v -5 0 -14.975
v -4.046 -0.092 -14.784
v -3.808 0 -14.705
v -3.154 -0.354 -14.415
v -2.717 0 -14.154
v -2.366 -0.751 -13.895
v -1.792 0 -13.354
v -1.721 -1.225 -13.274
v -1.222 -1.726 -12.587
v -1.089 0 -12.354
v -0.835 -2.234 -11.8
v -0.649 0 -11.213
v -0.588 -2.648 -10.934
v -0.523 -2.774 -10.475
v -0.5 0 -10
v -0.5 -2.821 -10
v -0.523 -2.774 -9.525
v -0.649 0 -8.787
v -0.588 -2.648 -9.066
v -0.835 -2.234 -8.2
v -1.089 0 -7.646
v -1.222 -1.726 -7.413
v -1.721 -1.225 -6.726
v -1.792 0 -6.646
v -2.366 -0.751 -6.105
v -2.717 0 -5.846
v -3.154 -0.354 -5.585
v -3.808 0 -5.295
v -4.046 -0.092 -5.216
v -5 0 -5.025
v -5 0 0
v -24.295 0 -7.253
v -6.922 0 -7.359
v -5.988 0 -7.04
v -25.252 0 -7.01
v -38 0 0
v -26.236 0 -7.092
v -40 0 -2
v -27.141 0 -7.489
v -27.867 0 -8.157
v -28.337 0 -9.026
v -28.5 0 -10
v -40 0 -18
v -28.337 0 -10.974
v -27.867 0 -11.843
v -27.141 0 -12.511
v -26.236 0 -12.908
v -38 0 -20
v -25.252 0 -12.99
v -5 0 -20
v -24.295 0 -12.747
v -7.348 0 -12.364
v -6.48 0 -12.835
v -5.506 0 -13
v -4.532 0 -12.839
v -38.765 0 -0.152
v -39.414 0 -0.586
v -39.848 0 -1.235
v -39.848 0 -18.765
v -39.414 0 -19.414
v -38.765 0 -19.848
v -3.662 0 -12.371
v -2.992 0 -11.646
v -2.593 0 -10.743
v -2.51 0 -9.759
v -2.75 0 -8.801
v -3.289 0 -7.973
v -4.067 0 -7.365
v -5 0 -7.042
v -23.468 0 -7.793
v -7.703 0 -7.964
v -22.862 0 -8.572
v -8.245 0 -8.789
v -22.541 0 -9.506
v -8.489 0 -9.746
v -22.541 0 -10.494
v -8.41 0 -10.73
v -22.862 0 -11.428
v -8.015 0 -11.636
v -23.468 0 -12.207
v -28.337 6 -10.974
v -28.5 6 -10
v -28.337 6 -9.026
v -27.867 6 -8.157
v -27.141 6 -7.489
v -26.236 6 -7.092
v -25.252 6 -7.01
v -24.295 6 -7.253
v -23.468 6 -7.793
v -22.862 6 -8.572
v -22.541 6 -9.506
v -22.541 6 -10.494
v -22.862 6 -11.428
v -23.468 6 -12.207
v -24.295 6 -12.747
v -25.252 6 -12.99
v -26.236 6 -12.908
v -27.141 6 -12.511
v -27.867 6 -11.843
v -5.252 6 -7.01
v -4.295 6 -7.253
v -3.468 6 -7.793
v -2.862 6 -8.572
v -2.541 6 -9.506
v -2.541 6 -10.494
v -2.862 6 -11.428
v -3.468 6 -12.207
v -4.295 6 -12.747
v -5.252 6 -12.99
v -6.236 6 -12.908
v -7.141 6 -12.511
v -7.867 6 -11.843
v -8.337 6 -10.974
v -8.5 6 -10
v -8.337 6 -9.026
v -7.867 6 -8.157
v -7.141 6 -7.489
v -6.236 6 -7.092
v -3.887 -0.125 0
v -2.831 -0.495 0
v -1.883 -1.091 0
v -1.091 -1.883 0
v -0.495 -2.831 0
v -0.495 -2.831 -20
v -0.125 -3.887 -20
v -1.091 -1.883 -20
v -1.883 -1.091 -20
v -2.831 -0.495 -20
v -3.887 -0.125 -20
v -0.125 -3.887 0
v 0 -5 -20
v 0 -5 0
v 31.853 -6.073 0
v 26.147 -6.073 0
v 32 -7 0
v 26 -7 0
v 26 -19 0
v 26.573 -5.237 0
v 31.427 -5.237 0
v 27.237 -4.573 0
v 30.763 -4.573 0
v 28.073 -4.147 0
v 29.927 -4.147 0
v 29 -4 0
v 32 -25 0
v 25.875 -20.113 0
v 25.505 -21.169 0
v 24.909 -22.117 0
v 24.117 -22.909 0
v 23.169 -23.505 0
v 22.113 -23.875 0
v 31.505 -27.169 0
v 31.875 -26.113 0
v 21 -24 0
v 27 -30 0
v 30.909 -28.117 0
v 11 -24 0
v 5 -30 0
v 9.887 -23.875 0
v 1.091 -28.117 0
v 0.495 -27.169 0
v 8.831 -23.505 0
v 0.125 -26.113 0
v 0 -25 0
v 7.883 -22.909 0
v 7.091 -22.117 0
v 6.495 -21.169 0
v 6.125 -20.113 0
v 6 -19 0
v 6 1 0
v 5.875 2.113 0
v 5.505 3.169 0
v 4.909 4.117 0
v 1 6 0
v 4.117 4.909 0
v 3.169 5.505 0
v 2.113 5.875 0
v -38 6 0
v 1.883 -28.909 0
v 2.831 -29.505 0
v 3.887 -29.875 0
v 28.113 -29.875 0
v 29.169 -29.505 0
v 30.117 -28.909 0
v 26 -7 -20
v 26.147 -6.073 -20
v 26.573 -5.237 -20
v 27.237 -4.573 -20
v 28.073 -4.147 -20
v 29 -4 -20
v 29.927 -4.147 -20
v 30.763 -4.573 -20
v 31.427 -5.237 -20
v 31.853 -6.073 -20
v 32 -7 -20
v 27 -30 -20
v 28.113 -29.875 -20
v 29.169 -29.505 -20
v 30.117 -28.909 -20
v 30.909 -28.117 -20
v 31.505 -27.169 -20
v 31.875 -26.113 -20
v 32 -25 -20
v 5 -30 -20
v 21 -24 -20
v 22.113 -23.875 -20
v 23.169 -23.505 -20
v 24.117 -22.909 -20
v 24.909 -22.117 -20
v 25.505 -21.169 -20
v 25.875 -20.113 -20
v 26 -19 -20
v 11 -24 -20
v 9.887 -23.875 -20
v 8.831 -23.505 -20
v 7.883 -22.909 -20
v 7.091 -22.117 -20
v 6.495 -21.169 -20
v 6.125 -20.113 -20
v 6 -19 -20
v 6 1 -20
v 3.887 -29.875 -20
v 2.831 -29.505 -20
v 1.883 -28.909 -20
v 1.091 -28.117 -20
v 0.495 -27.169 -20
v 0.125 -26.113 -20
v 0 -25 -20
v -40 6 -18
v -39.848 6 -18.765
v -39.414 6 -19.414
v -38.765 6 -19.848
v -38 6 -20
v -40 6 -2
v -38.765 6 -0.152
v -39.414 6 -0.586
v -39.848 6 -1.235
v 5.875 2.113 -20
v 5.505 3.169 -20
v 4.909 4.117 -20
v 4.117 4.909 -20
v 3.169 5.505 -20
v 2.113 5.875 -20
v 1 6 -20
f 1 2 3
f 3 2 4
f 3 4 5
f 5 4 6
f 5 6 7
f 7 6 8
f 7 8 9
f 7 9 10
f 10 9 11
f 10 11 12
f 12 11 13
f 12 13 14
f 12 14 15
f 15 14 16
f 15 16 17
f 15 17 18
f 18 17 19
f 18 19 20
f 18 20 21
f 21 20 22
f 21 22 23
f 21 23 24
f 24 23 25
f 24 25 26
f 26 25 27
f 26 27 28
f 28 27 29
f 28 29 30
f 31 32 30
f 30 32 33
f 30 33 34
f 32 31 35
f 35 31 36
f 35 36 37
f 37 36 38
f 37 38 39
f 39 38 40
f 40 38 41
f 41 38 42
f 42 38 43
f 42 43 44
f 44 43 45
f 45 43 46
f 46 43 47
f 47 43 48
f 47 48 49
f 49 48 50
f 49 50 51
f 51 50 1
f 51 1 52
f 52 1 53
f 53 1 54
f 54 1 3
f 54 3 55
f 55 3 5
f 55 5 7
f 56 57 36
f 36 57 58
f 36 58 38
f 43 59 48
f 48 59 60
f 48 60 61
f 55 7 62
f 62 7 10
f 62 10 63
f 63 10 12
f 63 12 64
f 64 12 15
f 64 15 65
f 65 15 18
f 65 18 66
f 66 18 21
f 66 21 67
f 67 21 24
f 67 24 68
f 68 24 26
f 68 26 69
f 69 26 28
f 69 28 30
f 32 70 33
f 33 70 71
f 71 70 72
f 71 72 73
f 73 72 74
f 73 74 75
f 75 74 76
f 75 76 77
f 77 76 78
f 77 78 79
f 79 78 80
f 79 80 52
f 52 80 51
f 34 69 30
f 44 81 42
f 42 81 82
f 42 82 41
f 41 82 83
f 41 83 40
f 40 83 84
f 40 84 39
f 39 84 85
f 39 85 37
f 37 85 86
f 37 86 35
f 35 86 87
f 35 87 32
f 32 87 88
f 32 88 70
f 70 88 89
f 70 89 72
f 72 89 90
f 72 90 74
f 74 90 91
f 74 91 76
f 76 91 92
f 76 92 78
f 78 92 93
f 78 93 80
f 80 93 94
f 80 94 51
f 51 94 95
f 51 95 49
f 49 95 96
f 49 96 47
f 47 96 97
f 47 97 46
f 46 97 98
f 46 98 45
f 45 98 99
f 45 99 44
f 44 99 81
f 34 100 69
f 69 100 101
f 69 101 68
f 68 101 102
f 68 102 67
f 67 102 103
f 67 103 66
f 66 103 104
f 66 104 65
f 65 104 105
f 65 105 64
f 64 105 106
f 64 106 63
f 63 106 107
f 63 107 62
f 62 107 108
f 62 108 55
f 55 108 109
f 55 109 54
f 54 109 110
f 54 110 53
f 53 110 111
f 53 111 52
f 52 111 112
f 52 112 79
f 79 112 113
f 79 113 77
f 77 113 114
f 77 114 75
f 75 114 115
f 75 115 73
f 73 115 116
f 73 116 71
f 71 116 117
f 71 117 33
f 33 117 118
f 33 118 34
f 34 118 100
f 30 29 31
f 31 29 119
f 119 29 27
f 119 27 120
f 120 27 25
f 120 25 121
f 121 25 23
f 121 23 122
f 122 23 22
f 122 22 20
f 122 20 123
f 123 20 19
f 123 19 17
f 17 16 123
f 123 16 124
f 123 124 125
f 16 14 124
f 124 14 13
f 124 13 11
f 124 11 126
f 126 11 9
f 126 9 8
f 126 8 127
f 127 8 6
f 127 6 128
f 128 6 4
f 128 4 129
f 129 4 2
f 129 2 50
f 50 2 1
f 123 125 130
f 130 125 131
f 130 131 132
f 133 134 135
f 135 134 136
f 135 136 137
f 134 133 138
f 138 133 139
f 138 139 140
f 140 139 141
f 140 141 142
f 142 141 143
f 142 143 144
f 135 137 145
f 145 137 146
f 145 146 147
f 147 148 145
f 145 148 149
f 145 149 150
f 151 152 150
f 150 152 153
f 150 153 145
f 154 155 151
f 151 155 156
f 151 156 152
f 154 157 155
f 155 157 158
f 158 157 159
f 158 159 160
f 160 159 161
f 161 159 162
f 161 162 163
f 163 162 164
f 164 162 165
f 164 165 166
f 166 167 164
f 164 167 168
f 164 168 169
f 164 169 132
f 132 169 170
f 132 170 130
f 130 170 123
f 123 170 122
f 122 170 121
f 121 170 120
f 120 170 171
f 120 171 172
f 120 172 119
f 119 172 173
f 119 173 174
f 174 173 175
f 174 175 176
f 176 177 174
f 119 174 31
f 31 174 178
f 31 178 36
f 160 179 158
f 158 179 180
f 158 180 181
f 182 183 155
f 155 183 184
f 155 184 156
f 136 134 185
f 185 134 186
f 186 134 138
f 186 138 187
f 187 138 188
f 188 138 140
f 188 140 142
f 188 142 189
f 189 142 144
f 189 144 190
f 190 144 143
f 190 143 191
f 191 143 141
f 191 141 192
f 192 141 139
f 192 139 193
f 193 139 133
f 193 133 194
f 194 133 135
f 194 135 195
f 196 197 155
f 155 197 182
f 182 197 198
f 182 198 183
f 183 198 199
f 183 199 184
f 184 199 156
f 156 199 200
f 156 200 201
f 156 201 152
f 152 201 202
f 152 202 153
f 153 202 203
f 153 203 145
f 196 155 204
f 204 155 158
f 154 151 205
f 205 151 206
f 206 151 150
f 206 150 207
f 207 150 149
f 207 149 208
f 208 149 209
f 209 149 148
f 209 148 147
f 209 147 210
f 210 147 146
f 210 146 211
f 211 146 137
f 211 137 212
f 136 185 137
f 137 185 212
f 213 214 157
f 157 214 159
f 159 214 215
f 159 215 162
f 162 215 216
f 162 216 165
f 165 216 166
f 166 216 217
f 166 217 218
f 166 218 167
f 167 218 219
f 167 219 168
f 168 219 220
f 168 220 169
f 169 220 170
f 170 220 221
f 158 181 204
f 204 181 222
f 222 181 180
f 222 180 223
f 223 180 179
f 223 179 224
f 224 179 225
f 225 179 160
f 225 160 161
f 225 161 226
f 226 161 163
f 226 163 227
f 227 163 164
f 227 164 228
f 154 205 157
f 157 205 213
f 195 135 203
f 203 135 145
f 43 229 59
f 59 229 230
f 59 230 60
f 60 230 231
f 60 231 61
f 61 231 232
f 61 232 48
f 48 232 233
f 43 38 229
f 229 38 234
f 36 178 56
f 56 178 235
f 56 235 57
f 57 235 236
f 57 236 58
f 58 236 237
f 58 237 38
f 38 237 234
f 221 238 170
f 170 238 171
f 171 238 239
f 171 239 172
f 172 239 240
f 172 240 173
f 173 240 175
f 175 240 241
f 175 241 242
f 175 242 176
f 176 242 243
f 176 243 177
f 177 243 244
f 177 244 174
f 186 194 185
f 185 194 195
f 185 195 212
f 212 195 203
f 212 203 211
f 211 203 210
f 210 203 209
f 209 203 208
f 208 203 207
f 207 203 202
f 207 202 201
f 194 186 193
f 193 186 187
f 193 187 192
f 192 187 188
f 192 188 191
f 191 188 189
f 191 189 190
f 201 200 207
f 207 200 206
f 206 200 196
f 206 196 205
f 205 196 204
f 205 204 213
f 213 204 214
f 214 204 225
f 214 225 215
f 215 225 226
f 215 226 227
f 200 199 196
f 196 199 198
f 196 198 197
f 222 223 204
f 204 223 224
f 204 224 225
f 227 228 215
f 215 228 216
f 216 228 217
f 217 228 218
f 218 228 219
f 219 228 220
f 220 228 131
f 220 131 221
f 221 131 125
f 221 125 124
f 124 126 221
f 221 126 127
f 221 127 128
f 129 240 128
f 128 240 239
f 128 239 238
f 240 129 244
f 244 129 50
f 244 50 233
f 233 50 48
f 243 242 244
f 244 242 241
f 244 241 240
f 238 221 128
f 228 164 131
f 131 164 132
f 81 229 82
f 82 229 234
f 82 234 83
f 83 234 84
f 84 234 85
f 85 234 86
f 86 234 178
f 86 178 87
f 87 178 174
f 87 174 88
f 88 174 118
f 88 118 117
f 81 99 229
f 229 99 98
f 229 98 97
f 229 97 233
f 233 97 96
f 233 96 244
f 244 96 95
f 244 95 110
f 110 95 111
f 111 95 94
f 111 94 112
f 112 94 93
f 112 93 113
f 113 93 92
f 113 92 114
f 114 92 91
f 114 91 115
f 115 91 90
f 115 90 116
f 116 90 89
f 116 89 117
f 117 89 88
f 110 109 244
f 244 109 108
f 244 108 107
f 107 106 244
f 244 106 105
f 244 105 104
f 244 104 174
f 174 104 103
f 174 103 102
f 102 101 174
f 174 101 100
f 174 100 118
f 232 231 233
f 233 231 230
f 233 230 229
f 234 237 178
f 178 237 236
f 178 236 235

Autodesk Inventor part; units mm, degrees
ref_plane "YZ Plane" through (0, 0, 0) normal (1, 0, 0) x (0, 1, 0)
ref_plane "XZ Plane" through (0, 0, 0) normal (0, 1, 0) x (-1, 0, 0)
ref_plane "XY Plane" through (0, 0, 0) normal (0, 0, 1) x (1, 0, 0)
sketch "Sketch1" plane through (0, 0, 0) normal (0, 1, 0) x (-1, 0, 0)
  line L0 (0, 0) -> (40, 0)
  line L1 (40, 0) -> (40, -20)
  line L2 (40, -20) -> (0, -20)
  line L3 (0, -20) -> (0, 0)
  dimension "d0" = 40
  dimension "d1" = 20
extrude "Extrusion1" add sketch "Sketch1" along normal blind 6
sketch "Sketch2" plane through (0, 6, 0) normal (0, 1, 0) x (1, 0, 0)
  line L0 (0, 0) -> (6, 0)
  line L1 (6, 0) -> (6, 20)
  line L2 (6, 20) -> (0, 20)
  line L3 (0, 20) -> (0, 0)
  dimension "d4" = 6
  dimension "d5" = 20
extrude "Extrusion2" add sketch "Sketch2" against normal blind 30
fillet "Fillet1" radius 5 1 edges at (0, 0, -10)
fillet "Fillet4" radius 5 1 edges at (6, 6, -10)
sketch "Sketch5" plane through (0, 0, 0) normal (0, -1, 0) x (1, 0, 0)
  circle A0 centre (-5.5, -10) radius 3
  line L0 (-40, -20) -> (-40, 0) projected
  line L1 (-5, -20) -> (-40, -20) projected
  line L2 (6, -20) -> (6, 0) projected
  circle A1 centre (-25.5, -10) radius 3
  line L3 (-40, 0) -> (-5, 0) projected
  point P0 (0, 0)
  dimension "d18" = 6
  dimension "d20" = 10
  dimension "d47" = 11.5
  dimension "d48" = 6
  dimension "d49" = 20
  dimension "d50" = 10
fillet "Fillet7" radius 2 2 edges at (-40, 3, 0) (-40, 3, -20)
sketch "Sketch8" plane through (0, -24, -20) normal (-1, 0, 0) x (0, 0, 1)
  line L0 (20, 0) -> (0, 0) projected
  line L1 (0, 0) -> (20, 0)
  line L2 (20, 0) -> (20, -6)
  line L3 (20, -6) -> (0, -6)
  line L4 (0, -6) -> (0, 0)
  point P0 (20, 24)
  dimension "d35" = 6
extrude "Extrusion6" add sketch "Sketch8" against normal blind 32
fillet "Fillet8" radius 5 1 edges at (0, -30, -10)
fillet "Fillet9" radius 5 1 edges at (6, -24, -10)
sketch "Sketch9" plane through (32, -24, 0) normal (0, 1, 0) x (1, 0, 0)
  line L0 (0, 20) -> (0, 0) projected
  line L1 (0, 20) -> (-6, 20)
  line L2 (-6, 20) -> (-6, 0)
  line L3 (-6, 0) -> (0, 0)
  line L4 (0, 0) -> (0, 20)
  point P0 (-32, 0)
  dimension "d40" = 6
  dimension "d41" = 20
extrude "Extrusion7" add sketch "Sketch9" along normal blind 20
fillet "Fillet10" radius 5 1 edges at (26, -24, -10)
fillet "Fillet11" radius 5 1 edges at (32, -30, -10)
fillet "Fillet12" radius 3 2 edges at (26, -4, -10) (32, -4, -10)
extrude "Extrusion8" cut sketch "Sketch5" against normal through all both and the other way through all
sketch "Sketch10" plane through (0, 0, 0) normal (0, -1, 0) x (1, 0, 0)
  circle A0 centre (-5.5, -10) radius 3 projected
  circle A1 centre (-5.5, -10) radius 5
  point P0 (0, 0)
  dimension "d53" = 10
extrude "Extrusion9" cut sketch "Sketch10" along normal through all contours A0 | A1
properties part number "Cable_Guide_Holder"
